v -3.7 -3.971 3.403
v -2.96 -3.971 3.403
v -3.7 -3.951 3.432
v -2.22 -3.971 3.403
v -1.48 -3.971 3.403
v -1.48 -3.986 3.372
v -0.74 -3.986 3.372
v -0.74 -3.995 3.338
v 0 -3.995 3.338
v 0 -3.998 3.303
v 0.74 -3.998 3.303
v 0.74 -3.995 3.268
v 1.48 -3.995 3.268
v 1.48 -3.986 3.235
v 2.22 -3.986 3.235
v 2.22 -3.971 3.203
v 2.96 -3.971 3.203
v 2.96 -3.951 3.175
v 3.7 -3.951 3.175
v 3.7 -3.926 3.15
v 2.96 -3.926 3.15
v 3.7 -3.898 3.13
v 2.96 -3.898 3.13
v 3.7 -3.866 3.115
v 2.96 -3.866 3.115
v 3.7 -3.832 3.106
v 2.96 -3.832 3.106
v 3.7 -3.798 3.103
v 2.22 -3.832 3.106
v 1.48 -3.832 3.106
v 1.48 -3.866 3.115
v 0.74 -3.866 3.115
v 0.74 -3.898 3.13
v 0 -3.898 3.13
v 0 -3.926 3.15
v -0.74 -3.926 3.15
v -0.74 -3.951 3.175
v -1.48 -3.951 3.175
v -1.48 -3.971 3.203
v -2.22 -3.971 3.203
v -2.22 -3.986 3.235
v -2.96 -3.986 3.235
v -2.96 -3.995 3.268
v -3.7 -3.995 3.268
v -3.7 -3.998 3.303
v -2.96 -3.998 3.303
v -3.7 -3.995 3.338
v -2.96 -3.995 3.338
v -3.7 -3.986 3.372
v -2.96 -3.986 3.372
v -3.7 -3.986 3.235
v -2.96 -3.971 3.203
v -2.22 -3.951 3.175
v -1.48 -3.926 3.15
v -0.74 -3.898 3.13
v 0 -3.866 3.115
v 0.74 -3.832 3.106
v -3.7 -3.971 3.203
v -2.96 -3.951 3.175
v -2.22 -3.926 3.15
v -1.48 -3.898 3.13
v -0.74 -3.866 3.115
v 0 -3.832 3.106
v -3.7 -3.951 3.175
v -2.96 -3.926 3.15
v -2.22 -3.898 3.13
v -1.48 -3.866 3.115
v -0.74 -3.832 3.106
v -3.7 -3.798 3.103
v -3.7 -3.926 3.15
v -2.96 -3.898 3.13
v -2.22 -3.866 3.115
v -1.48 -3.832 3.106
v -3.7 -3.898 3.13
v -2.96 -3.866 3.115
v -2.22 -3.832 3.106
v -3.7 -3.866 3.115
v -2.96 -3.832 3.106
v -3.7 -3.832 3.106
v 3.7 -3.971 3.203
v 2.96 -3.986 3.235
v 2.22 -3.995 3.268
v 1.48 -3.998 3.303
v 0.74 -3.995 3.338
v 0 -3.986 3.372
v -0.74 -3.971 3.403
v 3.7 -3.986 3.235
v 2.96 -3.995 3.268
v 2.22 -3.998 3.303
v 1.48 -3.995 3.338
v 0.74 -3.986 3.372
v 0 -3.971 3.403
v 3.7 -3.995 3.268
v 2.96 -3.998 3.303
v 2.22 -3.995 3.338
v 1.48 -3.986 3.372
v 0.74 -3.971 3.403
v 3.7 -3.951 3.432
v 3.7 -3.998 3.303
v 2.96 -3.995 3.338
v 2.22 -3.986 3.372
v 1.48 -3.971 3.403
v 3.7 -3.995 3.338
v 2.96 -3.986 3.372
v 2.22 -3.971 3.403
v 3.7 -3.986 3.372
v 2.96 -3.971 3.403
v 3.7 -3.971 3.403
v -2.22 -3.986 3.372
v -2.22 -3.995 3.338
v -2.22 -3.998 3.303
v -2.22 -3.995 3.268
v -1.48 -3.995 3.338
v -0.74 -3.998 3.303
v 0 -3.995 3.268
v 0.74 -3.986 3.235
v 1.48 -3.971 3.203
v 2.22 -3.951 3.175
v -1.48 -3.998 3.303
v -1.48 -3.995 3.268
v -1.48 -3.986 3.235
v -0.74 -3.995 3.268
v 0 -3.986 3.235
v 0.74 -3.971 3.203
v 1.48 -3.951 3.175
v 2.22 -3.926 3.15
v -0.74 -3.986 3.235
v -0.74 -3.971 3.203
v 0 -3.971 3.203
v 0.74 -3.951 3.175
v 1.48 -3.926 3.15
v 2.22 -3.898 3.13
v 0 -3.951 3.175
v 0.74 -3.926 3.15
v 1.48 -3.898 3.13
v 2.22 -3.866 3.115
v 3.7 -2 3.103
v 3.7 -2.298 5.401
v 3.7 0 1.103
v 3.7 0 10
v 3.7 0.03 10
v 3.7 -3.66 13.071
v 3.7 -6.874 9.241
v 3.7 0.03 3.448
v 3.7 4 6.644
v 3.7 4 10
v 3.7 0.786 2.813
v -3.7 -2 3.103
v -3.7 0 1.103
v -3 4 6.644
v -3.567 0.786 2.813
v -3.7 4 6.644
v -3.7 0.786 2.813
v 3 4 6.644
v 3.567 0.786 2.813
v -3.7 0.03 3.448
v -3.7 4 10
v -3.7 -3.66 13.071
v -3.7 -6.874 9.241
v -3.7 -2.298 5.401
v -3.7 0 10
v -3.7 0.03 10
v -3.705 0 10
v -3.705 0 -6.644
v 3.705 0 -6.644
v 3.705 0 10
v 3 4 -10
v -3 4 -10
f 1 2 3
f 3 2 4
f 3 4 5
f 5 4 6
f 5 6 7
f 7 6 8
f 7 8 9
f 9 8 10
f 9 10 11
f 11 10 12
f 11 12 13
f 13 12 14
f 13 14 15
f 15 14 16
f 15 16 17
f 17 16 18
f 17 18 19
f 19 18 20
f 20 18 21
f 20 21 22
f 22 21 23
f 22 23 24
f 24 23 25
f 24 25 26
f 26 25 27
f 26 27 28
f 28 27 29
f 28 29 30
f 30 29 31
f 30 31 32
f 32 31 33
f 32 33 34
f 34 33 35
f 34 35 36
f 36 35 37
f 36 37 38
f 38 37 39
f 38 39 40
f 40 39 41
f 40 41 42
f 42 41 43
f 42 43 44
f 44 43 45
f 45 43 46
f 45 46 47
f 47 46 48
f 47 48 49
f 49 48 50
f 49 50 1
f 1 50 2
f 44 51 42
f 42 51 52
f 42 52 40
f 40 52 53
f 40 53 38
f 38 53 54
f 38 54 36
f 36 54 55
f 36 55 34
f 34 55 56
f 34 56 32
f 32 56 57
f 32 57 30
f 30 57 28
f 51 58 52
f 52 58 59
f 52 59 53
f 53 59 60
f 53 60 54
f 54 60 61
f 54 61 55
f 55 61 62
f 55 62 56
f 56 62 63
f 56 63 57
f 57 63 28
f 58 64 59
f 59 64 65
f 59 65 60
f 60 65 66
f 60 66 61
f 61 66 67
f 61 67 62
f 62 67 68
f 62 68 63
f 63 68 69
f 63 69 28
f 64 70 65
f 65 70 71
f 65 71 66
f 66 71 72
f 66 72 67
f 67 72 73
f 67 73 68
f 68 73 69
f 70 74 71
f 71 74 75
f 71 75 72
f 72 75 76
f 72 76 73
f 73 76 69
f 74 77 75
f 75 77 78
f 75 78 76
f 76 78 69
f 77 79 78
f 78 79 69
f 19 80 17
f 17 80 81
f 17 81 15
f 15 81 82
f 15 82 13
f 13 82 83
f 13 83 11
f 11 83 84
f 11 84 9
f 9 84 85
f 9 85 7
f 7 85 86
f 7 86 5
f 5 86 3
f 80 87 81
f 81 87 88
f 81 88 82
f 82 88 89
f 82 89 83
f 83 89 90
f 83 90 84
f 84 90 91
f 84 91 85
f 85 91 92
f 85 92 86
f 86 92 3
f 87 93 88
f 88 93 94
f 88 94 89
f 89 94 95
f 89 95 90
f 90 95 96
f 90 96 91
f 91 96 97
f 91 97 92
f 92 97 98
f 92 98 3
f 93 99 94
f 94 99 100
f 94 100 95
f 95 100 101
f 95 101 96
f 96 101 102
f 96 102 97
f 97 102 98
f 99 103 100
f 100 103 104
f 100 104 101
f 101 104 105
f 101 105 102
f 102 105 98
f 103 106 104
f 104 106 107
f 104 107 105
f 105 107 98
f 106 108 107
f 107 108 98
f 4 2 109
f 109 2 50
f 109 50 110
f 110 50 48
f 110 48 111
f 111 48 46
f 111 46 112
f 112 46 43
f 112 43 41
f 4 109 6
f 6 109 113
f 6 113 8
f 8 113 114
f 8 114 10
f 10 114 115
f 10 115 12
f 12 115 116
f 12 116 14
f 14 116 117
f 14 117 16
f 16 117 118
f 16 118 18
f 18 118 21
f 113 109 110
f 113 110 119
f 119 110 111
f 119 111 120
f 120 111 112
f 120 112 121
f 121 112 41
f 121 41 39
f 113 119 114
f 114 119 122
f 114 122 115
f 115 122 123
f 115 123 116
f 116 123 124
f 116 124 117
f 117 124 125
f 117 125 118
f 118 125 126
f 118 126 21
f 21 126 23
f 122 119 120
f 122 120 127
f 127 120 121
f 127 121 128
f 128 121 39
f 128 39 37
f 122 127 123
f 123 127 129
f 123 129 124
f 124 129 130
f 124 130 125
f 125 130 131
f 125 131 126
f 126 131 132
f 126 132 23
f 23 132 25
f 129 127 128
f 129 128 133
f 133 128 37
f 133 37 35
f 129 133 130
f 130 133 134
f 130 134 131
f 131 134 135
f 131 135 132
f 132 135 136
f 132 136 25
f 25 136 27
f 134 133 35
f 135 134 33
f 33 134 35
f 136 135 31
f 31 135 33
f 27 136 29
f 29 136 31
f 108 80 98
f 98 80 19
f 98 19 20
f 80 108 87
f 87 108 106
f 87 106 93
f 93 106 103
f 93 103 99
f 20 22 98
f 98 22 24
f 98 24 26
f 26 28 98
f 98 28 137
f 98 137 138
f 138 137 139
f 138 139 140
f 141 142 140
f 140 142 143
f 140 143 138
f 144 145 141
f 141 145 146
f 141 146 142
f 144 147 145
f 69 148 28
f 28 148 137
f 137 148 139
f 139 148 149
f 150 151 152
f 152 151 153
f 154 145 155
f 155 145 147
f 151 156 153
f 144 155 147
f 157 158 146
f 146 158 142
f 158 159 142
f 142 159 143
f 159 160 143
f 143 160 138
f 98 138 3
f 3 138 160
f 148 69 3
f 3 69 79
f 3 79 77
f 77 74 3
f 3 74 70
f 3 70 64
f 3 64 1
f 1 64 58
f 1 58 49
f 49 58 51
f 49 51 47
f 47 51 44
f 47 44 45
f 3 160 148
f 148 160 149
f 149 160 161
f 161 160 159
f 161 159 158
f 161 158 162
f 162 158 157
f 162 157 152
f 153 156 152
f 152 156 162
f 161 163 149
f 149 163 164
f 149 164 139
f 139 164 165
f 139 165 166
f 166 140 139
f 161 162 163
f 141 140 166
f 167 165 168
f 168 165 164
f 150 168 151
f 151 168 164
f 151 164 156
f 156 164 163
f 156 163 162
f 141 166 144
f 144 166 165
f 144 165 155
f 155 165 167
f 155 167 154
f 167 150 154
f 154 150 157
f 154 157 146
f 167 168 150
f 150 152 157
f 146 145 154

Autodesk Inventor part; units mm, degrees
ref_plane "YZ Plane" through (0, 0, 0) normal (1, 0, 0) x (0, 1, 0)
ref_plane "XZ Plane" through (0, 0, 0) normal (0, 1, 0) x (-1, 0, 0)
ref_plane "XY Plane" through (0, 0, 0) normal (0, 0, 1) x (1, 0, 0)
sketch "Boceto1" plane through (0, 0, 0) normal (0, 1, 0) x (-1, 0, 0)
  line L0 (-3, -10) -> (3, -10)
  line L1 (3, -10) -> (3, 10)
  line L2 (3, 10) -> (-3, 10)
  line L3 (-3, 10) -> (-3, -10)
  line L4 (-3, -10) -> (3, 10) construction
  line L5 (3, -10) -> (-3, 10) construction
  point P0 (0, 0)
  dimension "d0" = 6
  dimension "d1" = 20
extrude "Extrusión1" add sketch "Boceto1" along normal blind 4
sketch "Boceto2" plane through (-3, 0, -10) normal (-1, 0, 0) x (0, 0, 1)
  line L0 (0, 0) -> (0, 4) projected
  line L1 (0, 4) -> (3.3564, 0)
  line L2 (0, 0) -> (20, 0) projected
  line L3 (0, 4) -> (5.2216, 4) construction
  line L4 (3.3564, 0) -> (0, 0)
  line L5 (0, 0) -> (0, 4)
  line L6 (20, 0) -> (16.6436, 4)
  line L7 (0, 4) -> (20, 4) projected
  line L8 (20, 0) -> (25.2216, 0) construction
  line L9 (16.6436, 4) -> (12.8134, 0.7861)
  line L10 (12.8134, 0.7861) -> (19.2413, -6.8744)
  line L11 (19.2413, -6.8744) -> (23.0715, -3.6604)
  line L12 (23.0715, -3.6604) -> (20, 0)
  line L13 (20, 4) -> (23.0715, -3.6604)
  line L14 (20, 4) -> (16.6436, 4)
  line L15 (13.473, 0) -> (15.4013, -2.2981)
  line L16 (15.4013, -2.2981) -> (13.1032, -4.2265)
  line L17 (13.1032, -4.2265) -> (13.1032, 0)
  point P0 (10, 0)
  point P1 (14.7285, 2.393)
  point P2 (14.8694, 0)
  point P3 (11.8766, 0)
  dimension "d9" = 50
  dimension "d10" = 130
  dimension "d11" = 90
  dimension "d12" = 10
  dimension "d15" = 5
  dimension "d16" = 3
  dimension "d17" = 3
draft "Cara para el ángulo de desmoldeo1" angle 10 pull direction (0, 1, 0) faces at (3, 2.6667, 3.3333) fixed edges at (3, 4, 0)
mirror "Simetría1" about plane through (0, 0, 0) normal (1, 0, 0) of "Extrusión1", "Cara para el ángulo de desmoldeo1"
extrude "Extrusión2" cut sketch "Boceto2" along normal mid plane 20 contours L0 L1 L2
extrude "Extrusión3" add sketch "Boceto2" along normal blind 0.7 and the other way blind 6.7 contours L7 L13 L12 L6 | L6 L2 L10 L9 | L2 L10 L16 L17 | L12 L11 L10 L2
chamfer "Chaflán1" distance 2 angle 45 1 edges at (0, 0, 3.1032)
fillet "Empalme1" radius 0.2 1 edges at (0, -4.2265, 3.1032)
properties part number "palitowantan"
